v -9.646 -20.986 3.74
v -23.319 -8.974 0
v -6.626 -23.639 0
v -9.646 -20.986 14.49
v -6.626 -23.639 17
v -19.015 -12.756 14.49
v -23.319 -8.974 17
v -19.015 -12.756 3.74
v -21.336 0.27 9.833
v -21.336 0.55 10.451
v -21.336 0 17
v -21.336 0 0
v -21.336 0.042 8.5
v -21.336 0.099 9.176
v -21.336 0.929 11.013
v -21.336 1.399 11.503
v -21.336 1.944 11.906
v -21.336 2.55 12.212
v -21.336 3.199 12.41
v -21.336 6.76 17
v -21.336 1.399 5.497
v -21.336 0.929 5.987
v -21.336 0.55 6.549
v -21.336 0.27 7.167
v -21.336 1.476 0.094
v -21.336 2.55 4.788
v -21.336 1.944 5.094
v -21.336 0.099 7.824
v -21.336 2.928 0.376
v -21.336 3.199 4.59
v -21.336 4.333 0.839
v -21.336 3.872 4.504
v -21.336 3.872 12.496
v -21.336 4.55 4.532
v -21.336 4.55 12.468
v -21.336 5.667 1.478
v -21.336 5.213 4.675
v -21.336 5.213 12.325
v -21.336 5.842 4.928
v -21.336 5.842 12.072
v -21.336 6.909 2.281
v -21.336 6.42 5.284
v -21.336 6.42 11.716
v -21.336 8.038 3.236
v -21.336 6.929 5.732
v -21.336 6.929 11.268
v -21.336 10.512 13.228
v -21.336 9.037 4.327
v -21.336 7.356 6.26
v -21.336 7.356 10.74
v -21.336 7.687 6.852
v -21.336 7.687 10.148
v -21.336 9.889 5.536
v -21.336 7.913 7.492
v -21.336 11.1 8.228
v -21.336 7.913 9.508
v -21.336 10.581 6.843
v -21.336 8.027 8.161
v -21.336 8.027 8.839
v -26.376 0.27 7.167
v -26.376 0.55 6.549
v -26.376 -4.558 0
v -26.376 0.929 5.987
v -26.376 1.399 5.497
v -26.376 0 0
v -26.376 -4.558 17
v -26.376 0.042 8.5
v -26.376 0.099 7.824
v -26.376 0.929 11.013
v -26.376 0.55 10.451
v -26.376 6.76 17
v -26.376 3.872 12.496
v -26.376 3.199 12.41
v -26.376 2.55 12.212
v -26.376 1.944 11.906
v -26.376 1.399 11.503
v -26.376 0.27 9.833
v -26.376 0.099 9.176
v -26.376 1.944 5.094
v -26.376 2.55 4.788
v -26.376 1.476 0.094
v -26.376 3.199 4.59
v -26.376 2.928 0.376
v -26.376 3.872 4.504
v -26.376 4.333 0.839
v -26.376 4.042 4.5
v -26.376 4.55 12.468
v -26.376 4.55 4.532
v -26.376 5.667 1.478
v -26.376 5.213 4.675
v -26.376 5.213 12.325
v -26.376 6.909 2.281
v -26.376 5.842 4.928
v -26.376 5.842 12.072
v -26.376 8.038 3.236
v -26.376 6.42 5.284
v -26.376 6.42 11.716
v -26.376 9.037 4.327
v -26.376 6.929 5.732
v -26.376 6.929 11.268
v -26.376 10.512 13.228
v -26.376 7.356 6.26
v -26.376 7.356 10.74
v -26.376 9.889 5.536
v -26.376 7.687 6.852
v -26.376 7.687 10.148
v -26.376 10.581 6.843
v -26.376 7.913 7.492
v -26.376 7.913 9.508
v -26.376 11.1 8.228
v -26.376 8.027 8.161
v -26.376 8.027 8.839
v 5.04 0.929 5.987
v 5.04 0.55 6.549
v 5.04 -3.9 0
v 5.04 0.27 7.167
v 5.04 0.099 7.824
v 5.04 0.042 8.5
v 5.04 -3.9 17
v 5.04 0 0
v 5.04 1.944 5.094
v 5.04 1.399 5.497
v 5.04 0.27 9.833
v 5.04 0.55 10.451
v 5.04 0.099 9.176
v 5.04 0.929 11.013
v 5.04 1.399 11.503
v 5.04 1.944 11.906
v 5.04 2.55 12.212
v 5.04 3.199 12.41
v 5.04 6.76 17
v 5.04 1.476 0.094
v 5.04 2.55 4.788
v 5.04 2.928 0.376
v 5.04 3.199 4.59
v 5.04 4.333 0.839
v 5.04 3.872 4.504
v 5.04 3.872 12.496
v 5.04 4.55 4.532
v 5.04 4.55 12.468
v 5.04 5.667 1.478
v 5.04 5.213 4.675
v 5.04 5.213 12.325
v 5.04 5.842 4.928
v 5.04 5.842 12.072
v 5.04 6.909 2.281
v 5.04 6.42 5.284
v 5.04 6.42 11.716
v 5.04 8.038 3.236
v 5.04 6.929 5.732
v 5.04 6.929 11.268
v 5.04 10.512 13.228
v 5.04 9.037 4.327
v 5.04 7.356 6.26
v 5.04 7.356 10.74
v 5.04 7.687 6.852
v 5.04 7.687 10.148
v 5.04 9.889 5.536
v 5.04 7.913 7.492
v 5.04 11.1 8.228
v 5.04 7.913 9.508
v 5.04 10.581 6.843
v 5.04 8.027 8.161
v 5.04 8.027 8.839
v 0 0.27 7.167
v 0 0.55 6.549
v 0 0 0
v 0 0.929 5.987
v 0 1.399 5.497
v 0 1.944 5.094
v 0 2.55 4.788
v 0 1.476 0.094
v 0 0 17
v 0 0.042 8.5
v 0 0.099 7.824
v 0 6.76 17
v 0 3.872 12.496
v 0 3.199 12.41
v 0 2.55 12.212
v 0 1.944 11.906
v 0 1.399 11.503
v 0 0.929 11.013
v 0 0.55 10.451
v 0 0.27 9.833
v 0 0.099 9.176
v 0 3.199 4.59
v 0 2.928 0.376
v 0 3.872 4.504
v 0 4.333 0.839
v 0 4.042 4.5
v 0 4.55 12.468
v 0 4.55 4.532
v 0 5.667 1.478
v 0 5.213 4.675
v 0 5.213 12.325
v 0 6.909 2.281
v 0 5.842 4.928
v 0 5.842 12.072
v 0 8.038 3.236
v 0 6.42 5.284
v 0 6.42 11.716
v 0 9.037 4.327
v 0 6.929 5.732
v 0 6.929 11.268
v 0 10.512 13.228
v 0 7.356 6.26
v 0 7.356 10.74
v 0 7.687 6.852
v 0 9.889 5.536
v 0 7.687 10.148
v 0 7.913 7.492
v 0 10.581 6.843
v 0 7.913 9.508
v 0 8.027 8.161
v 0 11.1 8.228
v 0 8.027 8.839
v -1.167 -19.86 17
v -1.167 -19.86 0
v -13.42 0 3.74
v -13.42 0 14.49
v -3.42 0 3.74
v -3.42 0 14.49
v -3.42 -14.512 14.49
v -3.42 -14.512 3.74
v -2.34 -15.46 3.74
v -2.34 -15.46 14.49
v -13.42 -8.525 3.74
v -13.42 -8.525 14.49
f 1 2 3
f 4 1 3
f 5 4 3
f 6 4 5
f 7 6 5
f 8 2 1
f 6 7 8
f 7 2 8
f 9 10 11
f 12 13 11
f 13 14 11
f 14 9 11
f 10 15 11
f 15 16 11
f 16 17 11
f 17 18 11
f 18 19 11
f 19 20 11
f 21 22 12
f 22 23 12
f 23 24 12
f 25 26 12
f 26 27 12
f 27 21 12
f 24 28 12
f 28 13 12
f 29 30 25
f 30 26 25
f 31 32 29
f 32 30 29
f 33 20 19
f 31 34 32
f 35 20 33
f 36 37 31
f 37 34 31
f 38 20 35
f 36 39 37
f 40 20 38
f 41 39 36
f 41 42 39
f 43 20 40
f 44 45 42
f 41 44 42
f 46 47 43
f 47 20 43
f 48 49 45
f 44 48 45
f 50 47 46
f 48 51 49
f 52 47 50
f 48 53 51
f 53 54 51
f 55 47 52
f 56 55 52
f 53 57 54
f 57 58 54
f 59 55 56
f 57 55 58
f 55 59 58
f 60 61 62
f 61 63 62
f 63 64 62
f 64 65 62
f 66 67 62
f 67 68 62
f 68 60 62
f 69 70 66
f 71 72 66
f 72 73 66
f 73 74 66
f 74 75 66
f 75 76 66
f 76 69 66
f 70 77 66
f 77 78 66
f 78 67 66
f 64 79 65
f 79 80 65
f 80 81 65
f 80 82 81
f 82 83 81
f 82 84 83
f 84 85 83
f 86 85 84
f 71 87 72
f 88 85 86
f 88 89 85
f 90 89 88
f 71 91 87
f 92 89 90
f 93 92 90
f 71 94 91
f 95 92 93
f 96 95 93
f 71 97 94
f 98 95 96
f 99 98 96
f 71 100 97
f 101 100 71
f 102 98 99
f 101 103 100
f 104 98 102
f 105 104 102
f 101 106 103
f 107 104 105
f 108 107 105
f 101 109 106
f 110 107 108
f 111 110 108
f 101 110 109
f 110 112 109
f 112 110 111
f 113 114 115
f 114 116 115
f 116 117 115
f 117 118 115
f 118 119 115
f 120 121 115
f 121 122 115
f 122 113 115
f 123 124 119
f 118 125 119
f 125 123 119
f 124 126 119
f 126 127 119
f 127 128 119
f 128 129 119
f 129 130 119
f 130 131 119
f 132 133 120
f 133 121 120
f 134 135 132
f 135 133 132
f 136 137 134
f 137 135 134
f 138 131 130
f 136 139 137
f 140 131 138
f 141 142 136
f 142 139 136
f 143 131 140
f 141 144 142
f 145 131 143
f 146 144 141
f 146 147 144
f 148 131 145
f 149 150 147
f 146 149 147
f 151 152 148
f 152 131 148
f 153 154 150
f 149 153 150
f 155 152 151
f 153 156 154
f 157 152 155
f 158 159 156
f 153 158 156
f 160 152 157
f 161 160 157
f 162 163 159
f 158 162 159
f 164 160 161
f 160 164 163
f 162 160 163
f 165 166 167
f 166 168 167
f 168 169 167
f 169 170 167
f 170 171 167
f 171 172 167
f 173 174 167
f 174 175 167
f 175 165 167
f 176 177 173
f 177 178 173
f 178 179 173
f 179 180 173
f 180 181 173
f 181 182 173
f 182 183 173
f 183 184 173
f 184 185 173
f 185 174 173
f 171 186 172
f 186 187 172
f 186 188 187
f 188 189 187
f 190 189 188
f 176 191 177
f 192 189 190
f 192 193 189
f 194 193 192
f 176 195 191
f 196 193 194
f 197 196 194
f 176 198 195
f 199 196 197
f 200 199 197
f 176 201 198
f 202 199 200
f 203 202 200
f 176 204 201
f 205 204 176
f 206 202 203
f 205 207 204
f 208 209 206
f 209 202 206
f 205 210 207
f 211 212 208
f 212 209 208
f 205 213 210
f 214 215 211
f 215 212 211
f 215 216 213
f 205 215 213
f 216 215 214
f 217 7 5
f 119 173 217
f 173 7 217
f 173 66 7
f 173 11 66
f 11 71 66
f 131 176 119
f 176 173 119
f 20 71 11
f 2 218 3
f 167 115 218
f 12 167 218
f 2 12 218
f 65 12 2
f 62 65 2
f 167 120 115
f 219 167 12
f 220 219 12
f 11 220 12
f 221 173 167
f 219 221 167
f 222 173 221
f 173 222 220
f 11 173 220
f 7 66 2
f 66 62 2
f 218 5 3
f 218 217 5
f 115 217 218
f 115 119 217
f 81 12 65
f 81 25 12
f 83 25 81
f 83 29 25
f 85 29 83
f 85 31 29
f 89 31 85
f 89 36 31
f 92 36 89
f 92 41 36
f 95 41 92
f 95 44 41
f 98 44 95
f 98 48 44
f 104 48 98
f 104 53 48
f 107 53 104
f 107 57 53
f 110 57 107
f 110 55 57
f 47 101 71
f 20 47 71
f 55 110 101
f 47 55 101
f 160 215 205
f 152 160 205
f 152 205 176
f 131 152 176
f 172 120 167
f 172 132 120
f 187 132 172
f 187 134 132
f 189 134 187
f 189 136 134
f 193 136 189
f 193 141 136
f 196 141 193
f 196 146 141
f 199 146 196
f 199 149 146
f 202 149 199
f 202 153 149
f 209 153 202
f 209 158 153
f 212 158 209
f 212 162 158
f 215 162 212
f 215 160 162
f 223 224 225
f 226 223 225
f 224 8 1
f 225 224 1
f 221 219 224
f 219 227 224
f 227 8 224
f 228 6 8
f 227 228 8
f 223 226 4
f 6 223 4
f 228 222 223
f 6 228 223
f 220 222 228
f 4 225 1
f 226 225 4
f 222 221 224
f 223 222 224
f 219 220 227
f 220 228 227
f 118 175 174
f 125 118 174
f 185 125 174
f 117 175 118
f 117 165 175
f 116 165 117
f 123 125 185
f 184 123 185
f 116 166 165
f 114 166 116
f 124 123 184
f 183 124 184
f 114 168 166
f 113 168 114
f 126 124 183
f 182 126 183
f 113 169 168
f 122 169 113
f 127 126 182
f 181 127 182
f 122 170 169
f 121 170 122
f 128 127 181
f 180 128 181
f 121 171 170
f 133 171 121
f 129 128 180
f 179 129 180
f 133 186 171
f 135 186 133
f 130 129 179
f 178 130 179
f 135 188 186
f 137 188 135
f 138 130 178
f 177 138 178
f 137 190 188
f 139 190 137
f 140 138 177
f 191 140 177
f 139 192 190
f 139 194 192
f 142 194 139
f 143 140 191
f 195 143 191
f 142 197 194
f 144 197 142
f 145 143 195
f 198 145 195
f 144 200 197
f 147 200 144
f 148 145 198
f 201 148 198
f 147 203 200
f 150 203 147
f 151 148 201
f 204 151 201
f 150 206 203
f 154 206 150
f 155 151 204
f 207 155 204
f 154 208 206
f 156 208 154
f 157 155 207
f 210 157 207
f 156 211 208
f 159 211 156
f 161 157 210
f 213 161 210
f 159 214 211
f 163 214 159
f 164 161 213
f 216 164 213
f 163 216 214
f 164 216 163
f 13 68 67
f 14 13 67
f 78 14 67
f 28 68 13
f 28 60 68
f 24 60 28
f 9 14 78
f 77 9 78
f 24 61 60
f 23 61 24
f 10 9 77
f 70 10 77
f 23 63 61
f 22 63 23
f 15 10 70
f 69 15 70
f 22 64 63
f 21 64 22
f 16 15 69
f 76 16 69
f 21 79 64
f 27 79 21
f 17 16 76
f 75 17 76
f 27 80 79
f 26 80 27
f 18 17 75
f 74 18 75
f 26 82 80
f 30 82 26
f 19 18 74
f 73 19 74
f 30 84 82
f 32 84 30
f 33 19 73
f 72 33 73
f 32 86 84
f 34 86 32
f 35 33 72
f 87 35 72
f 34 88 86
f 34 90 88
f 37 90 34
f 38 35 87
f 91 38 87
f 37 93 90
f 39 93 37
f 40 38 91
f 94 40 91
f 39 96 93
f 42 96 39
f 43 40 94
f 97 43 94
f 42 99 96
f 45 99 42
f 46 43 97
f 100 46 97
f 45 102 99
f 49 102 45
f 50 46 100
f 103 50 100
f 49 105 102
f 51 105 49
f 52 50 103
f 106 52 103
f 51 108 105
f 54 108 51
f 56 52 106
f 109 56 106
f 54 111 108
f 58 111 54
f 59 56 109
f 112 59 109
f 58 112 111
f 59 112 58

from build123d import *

# Parameters (mm, degrees)
BOSS_EXTRUDE1_DEPTH = 17
CUT_EXTRUDE1_DEPTH  = 31
SKETCH3_W           = 12.47
SKETCH3_H           = 10.75
CUT_EXTRUDE2_REACH  = 25.639
SKETCH6_W           = 10
SKETCH6_H           = 10.75
SKETCH7_R           = 4
CUT_EXTRUDE3_DEPTH  = 31


with BuildPart() as part:
    # Sketch1 → Boss-Extrude1 (new body)
    with BuildSketch(Plane.XY):
        Polygon((0, 0), (0, 11.1), (5.04, 11.1), (5.04, -3.9), (-1.16650456, -19.86), (-6.626200647, -23.639063196), (-23.319289693, -8.973826134), (-26.37555014, -4.558379149), (-26.37555014, 11.1), (-21.33555014, 11.1), (-21.33555014, 0), align=None)
    extrude(amount=BOSS_EXTRUDE1_DEPTH)

    # Sketch2 → Cut-Extrude1 (cut, symmetric)
    with BuildSketch(Plane.ZY):
        Polygon((8.228054067, 11.1), (17, 11.1), (17, 12.88110255), (0, 12.88110255), (0, 11.1), align=None)
        with BuildLine():
            ThreePointArc((0, 0), (2.28131811, 6.908525055), (8.228054067, 11.1))
            Line((8.228054067, 11.1), (0, 11.1))
            Line((0, 11.1), (0, 0))
        make_face()
        Polygon((13.228054067, 10.512247596), (17, 6.76), (17, 11.1), (8.228054067, 11.1), align=None)
    extrude(amount=CUT_EXTRUDE1_DEPTH, both=True, mode=Mode.SUBTRACT)

    # Cut-Sweep1: sweep along a path in Sketch5
    with BuildLine(Plane.XY.offset(7)) as cut_sweep1_path:
        Line((-11.079626433, -19.726633046), (-3.773757644, -14.201247879))
    # Sketch3 → Cut-Sweep1 (sweep, cut)
    with BuildSketch(Plane(origin=(-14.60747623, -16.627341271, 0), x_dir=(-0.751264134, 0.660001668, 0), z_dir=(-0.660001668, -0.751264134, 0))):
        with Locations((-0.368794251, -9.115)):
            Rectangle(SKETCH3_W, SKETCH3_H)
    sweep(path=cut_sweep1_path.line, mode=Mode.SUBTRACT)

    # Cut-Extrude2: up to this face of the body (flat: up to its plane)
    cut_extrude2_end = Plane(part.part.faces().sort_by_distance((-5.99334807, -18.223163907, 9.115))[0])
    # Sketch6 → Cut-Extrude2 (cut, up to the picked face)
    with BuildSketch(Plane(origin=(0, 0, 0), x_dir=(1, 0, 0), z_dir=(0, 1, 0)), mode=Mode.PRIVATE) as cut_extrude2_sk1:
        with Locations((-8.42, -9.115)):
            Rectangle(SKETCH6_W, SKETCH6_H)
    cut_extrude2_tool1 = split(extrude(cut_extrude2_sk1.sketch, amount=-CUT_EXTRUDE2_REACH, mode=Mode.PRIVATE), bisect_by=cut_extrude2_end, keep=Keep.BOTH, mode=Mode.PRIVATE)
    add(cut_extrude2_tool1.solids().sort_by_distance((-8.42, 0, 9.115))[0], mode=Mode.SUBTRACT)

    # Sketch7 → Cut-Extrude3 (cut, symmetric)
    with BuildSketch(Plane.ZY.offset(10.66777507)):
        with Locations((8.5, 4.041620851)):
            Circle(SKETCH7_R)
    extrude(amount=CUT_EXTRUDE3_DEPTH, both=True, mode=Mode.SUBTRACT)


solid = part.part
